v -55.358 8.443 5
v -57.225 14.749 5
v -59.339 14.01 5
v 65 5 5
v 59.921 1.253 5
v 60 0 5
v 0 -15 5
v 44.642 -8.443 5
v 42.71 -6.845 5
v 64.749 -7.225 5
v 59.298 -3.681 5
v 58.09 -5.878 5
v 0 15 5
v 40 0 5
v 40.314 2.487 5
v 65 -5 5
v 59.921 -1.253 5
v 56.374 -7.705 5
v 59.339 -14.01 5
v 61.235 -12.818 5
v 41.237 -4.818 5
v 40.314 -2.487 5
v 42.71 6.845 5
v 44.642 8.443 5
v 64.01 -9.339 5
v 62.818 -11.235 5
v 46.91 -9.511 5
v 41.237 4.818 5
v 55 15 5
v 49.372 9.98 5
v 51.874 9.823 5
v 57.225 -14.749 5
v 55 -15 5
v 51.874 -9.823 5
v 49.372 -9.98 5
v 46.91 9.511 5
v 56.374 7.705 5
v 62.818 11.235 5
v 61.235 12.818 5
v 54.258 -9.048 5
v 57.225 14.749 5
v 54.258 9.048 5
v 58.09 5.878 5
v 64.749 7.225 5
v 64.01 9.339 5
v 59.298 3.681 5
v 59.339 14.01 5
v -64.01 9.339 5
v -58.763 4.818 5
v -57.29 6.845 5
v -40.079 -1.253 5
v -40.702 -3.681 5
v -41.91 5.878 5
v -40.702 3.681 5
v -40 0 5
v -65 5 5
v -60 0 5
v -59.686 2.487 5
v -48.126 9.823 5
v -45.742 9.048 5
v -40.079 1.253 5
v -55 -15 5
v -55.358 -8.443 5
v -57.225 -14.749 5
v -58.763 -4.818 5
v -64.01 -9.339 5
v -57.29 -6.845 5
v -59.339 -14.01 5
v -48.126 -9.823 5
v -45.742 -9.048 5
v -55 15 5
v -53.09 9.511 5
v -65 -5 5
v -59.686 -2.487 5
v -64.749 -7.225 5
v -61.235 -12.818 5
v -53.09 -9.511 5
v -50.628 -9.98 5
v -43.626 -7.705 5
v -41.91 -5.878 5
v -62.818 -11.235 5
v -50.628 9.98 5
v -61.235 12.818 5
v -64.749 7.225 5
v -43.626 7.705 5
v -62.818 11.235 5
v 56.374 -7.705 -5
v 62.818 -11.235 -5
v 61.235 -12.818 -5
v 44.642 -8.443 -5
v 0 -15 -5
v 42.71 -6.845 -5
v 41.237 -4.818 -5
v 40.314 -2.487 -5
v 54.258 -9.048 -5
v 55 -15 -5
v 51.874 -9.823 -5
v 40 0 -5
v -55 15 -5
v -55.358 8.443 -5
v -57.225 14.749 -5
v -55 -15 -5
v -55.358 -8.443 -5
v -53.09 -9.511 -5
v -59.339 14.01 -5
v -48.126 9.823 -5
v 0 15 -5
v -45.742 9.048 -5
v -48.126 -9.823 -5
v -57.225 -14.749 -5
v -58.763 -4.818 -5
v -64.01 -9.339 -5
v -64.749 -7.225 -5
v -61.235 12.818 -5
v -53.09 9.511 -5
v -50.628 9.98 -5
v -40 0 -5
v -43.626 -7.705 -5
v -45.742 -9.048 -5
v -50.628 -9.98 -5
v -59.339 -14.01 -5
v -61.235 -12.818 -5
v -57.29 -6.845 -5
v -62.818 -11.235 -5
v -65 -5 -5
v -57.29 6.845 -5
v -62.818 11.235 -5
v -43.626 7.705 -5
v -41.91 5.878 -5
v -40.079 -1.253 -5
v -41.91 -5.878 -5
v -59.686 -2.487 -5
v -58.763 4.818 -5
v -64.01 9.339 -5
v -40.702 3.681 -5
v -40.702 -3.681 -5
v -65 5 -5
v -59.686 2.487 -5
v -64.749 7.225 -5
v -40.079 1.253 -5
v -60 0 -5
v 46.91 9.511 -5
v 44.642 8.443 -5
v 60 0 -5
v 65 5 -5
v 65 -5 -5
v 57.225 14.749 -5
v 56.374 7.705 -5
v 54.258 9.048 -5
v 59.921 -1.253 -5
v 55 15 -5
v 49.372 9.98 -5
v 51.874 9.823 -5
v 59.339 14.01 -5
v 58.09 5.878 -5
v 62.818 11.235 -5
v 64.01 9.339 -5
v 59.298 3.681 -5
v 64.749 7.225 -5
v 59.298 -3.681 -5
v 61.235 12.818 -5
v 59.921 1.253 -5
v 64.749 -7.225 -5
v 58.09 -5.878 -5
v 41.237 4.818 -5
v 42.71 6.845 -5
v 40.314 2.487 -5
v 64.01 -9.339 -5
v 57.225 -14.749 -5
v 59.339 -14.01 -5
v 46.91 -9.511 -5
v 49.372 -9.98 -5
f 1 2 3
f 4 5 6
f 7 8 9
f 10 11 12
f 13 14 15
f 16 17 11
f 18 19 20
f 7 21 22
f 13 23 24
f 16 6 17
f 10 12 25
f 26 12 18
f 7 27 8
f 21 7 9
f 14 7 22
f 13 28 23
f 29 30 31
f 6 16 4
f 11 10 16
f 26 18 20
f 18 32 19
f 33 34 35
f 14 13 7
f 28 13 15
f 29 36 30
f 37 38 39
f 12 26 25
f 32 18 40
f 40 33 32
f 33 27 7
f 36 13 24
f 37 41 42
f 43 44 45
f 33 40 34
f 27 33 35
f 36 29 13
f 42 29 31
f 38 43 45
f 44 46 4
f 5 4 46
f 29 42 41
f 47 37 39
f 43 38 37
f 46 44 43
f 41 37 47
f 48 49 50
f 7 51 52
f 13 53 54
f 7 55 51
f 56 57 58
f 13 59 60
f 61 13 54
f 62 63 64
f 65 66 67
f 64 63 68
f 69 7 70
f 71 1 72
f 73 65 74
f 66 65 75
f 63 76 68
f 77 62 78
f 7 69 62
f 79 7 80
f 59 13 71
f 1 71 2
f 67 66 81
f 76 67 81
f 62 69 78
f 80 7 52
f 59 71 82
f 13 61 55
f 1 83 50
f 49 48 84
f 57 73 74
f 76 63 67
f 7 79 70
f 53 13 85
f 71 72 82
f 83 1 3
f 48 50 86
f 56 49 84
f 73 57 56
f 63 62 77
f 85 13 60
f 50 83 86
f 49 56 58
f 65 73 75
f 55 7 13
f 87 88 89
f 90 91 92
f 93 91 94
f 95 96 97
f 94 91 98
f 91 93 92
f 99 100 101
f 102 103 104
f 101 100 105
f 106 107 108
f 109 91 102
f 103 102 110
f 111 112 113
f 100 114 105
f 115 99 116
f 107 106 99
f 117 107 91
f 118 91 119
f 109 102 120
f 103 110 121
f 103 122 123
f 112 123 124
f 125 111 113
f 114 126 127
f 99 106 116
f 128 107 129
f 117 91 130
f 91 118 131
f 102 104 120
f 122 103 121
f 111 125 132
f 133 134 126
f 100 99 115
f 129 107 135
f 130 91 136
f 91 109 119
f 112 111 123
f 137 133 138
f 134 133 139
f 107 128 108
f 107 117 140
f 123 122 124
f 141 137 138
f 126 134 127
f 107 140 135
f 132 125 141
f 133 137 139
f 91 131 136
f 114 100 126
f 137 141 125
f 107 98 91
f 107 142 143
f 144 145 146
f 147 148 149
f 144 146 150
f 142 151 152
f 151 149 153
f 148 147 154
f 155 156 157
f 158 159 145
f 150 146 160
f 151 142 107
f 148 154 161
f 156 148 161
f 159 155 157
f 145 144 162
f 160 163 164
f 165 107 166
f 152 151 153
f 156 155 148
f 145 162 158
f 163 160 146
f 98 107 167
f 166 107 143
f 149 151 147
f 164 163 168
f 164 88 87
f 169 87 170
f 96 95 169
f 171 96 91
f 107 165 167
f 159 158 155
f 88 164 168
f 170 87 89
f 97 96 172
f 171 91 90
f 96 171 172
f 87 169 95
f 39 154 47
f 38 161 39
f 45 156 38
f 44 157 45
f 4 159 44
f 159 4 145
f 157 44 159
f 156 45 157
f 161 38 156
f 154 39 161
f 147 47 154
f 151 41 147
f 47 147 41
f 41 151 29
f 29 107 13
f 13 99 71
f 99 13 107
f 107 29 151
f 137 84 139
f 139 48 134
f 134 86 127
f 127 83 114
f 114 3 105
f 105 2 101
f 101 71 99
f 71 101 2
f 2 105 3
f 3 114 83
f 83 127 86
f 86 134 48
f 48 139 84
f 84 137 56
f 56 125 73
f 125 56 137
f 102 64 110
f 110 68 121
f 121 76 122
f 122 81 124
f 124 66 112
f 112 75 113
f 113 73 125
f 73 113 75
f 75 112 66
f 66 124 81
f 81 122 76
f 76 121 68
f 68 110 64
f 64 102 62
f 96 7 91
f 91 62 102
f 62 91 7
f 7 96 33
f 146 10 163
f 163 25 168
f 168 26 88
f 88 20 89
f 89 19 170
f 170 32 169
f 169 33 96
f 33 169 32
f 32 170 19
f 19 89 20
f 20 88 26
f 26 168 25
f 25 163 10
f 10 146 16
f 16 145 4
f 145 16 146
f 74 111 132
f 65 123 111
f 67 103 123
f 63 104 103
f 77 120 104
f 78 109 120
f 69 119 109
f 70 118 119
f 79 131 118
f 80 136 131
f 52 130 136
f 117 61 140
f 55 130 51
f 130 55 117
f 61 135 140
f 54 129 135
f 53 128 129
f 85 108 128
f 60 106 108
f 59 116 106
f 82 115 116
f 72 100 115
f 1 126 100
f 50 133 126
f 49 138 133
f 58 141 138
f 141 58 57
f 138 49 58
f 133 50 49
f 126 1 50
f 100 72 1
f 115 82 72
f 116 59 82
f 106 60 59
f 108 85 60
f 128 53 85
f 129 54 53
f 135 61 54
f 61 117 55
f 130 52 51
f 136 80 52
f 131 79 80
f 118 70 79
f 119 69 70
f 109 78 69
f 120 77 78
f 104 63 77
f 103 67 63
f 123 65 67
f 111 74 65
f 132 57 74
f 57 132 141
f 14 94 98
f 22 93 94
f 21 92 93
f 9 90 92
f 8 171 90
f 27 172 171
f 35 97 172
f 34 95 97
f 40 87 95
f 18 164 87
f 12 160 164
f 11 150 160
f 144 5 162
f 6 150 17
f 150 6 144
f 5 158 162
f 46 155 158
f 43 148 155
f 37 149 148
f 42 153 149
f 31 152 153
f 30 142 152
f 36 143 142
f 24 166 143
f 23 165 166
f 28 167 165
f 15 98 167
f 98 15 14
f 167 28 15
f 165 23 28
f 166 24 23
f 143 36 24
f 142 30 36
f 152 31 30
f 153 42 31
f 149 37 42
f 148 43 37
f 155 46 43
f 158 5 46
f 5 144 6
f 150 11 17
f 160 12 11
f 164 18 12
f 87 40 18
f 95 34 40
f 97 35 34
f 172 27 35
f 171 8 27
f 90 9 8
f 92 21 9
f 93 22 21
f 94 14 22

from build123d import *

# Parameters (mm, degrees)
CROQUIS1_R              = 10
SALIENTE_EXTRUIR1_DEPTH = 5


with BuildPart() as part:
    # Croquis1 → Saliente-Extruir1 (new body, symmetric)
    with BuildSketch(Plane.XY):
        with BuildLine():
            Line((-55, 15), (55, 15))
            ThreePointArc((55, 15), (62.071067812, 12.071067812), (65, 5))
            Line((65, 5), (65, -5))
            ThreePointArc((65, -5), (62.071067812, -12.071067812), (55, -15))
            Line((55, -15), (-55, -15))
            ThreePointArc((-55, -15), (-62.071067812, -12.071067812), (-65, -5))
            Line((-65, -5), (-65, 5))
            ThreePointArc((-65, 5), (-62.071067812, 12.071067812), (-55, 15))
        make_face()
        with Locations((-50, 0)):
            Circle(CROQUIS1_R, mode=Mode.SUBTRACT)
        with Locations((50, 0)):
            Circle(CROQUIS1_R, mode=Mode.SUBTRACT)
    extrude(amount=SALIENTE_EXTRUIR1_DEPTH, both=True)


solid = part.part
